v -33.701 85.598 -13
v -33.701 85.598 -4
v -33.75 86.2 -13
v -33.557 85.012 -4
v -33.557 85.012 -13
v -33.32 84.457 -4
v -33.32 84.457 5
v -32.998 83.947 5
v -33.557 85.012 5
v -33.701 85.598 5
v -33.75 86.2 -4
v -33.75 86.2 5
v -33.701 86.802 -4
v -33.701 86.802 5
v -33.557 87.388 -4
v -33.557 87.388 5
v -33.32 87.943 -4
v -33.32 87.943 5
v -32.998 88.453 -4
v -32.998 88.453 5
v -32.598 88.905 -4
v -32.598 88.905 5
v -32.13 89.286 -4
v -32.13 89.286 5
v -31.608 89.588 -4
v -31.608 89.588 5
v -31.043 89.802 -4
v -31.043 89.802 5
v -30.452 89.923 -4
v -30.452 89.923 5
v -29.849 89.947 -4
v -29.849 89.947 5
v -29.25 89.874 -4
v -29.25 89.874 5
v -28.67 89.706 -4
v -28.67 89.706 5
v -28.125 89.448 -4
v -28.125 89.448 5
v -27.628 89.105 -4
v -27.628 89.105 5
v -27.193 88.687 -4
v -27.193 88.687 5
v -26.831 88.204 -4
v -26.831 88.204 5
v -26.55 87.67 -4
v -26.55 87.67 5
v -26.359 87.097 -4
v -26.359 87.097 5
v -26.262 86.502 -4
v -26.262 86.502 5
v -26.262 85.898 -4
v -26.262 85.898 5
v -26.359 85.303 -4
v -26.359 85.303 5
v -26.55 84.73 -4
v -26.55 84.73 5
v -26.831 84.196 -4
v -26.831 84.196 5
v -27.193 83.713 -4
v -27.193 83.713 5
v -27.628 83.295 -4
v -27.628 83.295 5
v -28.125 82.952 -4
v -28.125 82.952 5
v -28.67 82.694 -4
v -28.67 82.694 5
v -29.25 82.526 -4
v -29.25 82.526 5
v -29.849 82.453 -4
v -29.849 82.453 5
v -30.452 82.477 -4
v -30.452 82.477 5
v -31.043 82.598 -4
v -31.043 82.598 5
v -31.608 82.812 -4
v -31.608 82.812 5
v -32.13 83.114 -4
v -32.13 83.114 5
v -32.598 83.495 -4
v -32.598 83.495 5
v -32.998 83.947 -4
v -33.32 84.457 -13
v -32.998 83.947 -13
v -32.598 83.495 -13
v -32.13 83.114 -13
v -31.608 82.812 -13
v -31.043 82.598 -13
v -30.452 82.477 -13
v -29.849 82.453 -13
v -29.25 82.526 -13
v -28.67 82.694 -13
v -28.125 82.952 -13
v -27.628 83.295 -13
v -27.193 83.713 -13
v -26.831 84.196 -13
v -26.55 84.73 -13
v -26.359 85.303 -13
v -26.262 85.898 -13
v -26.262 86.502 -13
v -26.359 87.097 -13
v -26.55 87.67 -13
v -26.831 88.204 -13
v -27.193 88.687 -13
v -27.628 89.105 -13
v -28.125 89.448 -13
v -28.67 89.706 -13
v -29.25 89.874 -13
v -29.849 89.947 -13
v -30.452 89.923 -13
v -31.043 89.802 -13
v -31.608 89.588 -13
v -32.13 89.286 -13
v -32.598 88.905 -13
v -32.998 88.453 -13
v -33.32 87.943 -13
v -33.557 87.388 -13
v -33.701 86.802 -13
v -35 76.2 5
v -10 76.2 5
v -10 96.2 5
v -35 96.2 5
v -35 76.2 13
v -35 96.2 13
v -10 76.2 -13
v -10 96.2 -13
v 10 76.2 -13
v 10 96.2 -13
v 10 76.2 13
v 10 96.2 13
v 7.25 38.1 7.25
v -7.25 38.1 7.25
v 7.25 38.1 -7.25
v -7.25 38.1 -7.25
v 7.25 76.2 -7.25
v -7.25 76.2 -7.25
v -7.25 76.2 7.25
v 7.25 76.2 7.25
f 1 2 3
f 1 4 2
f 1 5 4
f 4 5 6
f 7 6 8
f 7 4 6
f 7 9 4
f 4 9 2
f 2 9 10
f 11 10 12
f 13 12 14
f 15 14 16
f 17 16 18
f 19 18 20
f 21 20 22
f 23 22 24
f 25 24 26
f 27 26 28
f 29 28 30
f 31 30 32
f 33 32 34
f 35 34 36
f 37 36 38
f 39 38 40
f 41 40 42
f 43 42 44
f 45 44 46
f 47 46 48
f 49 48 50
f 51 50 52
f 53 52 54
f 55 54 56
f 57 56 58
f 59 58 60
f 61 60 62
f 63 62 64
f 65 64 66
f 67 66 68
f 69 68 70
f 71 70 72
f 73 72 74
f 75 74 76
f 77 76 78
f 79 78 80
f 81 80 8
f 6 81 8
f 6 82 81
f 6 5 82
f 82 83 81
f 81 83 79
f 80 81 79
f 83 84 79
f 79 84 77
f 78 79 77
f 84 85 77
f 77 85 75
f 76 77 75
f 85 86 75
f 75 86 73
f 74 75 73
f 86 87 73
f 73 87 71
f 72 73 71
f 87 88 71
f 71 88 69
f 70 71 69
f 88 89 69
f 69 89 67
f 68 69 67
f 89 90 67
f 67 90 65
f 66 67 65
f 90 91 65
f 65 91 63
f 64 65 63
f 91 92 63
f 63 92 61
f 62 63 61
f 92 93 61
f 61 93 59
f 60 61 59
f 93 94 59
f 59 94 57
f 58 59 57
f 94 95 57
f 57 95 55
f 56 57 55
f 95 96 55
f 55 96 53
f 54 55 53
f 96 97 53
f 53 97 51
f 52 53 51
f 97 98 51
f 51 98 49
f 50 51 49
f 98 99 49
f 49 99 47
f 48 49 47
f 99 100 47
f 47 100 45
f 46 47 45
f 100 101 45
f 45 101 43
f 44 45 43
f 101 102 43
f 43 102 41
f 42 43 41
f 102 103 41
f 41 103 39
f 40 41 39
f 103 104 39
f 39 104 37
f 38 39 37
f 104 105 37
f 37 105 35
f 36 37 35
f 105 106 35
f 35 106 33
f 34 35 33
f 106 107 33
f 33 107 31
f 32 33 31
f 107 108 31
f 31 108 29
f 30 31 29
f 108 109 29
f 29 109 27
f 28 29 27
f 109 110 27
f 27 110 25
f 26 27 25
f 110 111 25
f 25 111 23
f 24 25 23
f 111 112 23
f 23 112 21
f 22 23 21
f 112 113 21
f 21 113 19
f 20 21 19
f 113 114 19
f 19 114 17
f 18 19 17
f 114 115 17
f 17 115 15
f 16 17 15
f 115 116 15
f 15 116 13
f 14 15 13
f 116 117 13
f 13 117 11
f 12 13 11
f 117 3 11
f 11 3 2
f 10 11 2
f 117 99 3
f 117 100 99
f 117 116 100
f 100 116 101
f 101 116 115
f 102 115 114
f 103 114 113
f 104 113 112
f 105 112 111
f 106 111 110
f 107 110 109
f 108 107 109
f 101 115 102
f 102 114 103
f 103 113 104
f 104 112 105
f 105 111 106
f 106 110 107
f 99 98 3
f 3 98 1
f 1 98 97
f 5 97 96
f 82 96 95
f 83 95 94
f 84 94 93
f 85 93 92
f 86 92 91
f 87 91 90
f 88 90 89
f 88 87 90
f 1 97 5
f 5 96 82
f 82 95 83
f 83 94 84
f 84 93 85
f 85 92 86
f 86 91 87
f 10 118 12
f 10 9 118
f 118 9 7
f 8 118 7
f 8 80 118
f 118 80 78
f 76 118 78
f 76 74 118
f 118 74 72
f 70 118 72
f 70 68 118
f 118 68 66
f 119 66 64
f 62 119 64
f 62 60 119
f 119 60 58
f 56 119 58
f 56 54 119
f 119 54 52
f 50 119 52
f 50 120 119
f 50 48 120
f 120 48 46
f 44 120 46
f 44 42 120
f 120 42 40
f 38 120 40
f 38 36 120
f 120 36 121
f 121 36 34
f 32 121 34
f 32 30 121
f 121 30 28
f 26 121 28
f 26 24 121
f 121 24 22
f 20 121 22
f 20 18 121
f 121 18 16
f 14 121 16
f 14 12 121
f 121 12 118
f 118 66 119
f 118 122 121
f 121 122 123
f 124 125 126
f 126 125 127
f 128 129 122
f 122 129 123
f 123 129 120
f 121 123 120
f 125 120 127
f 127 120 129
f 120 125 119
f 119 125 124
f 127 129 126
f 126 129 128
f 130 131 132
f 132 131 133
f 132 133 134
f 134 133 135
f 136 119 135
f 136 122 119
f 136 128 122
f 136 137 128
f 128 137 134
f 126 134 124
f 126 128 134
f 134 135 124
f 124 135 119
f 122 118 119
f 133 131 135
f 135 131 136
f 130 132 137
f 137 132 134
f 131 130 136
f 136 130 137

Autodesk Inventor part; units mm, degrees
ref_plane "YZ Plane" through (0, 0, 0) normal (1, 0, 0) x (0, 1, 0)
ref_plane "XZ Plane" through (0, 0, 0) normal (0, 1, 0) x (-1, 0, 0)
ref_plane "XY Plane" through (0, 0, 0) normal (0, 0, 1) x (1, 0, 0)
sketch "Sketch1" plane through (0, 0, 0) normal (0, 1, 0) x (-1, 0, 0)
  line L0 (-7.25, 7.25) -> (7.25, 7.25)
  line L1 (7.25, 7.25) -> (7.25, -7.25)
  line L2 (7.25, -7.25) -> (-7.25, -7.25)
  line L3 (-7.25, -7.25) -> (-7.25, 7.25)
  line L4 (-7.25, 7.25) -> (7.25, -7.25) construction
  line L5 (7.25, 7.25) -> (-7.25, -7.25) construction
  point P0 (0, 0)
  dimension "d0" = 14.5
  dimension "d1" = 14.5
extrude "Extrusion1" add sketch "Sketch1" along normal blind 76.2
sketch "Sketch2" plane through (0, 76.2, 0) normal (0, 1, 0) x (1, 0, 0)
  line L0 (10, -10) -> (-10, -10)
  line L1 (-10, -10) -> (-10, 10)
  line L2 (-10, 10) -> (10, 10)
  line L3 (10, 10) -> (10, -10)
  line L4 (10, -10) -> (-10, 10) construction
  line L5 (-10, -10) -> (10, 10) construction
  point P0 (0, 0)
  dimension "d4" = 20
  dimension "d5" = 20
extrude "Extrusion2" add sketch "Sketch2" along normal blind 5
sketch "Sketch3" plane through (0, 81.2, 0) normal (0, 1, 0) x (1, 0, 0)
  line L0 (7.5, -7.5) -> (-7.5, -7.5)
  line L1 (-7.5, -7.5) -> (-7.5, 7.5)
  line L2 (-7.5, 7.5) -> (7.5, 7.5)
  line L3 (7.5, 7.5) -> (7.5, -7.5)
  line L4 (7.5, -7.5) -> (-7.5, 7.5) construction
  line L5 (-7.5, -7.5) -> (7.5, 7.5) construction
  line L6 (10, -10) -> (-10, -10)
  line L7 (-10, -10) -> (-10, 10)
  line L8 (-10, 10) -> (10, 10)
  line L9 (10, 10) -> (10, -10)
  line L10 (10, -10) -> (-10, 10) construction
  line L11 (-10, -10) -> (10, 10) construction
  point P0 (0, 0)
  dimension "d8" = 15
  dimension "d9" = 15
extrude "Extrusion3" add sketch "Sketch3" along normal blind 76.2
sketch "Sketch4" plane through (10, 76.2, 10) normal (1, 0, 0) x (0, 0, -1)
  line L0 (20, 0) -> (20, 81.2) projected
  line L1 (15, 81.2) -> (15, 0)
  line L2 (0, 0) -> (20, 0) projected
  line L3 (15, 81.2) -> (13, 81.2)
  line L4 (17.5, 81.2) -> (2.5, 81.2) projected
  line L5 (13, 81.2) -> (13, 0)
  line L6 (13, 0) -> (15, 0)
  line L7 (20, 81.2) -> (0, 81.2) projected
  point P0 (10, -76.2)
  dimension "d12" = 2
extrude "Extrusion4" add sketch "Sketch4" along normal blind 10 contours L2 L5 L3 L1
sketch "Sketch5" plane through (10, 76.2, -3) normal (0, 0, 1) x (1, 0, 0)
  line L0 (0, 81.2) -> (10, 81.2) projected
  line L1 (10, 81.2) -> (8, 81.2)
  line L2 (8, 81.2) -> (8, 0)
  line L3 (8, 0) -> (10, 0)
  line L4 (10, 0) -> (10, 81.2)
  point P0 (-10, -76.2)
  dimension "d15" = 2
extrude "Extrusion5" add sketch "Sketch5" along normal blind 8
sketch "Sketch6" plane through (20, 76.2, 10) normal (1, 0, 0) x (0, 0, -1)
  line L0 (5, 81.2) -> (3, 81.2)
  line L1 (3, 81.2) -> (3, 0)
  line L2 (3, 0) -> (5, 0)
  line L3 (5, 0) -> (5, 81.2)
  point P0 (10, -76.2)
  dimension "d18" = 2
extrude "Extrusion6" add sketch "Sketch6" against normal blind 4
sketch "Sketch7" plane through (0, 76.2, 0) normal (0, -1, 0) x (1, 0, 0)
  line L0 (10, -5) -> (20, -5)
  line L1 (20, -5) -> (20, 7)
  line L2 (20, 7) -> (10, 7)
  line L3 (10, 7) -> (10, -5)
  point P0 (0, 0)
extrude "Extrusion7" cut sketch "Sketch7" against normal through all
sketch "Sketch8" plane through (7.25, 0, -7.25) normal (0, 0, -1) x (-1, 0, 0)
  line L0 (0, 0) -> (0, 76.2)
  line L1 (0, 0) -> (0, 76.2) projected
  line L2 (0, 38.1) -> (14.5, 38.1)
  line L3 (14.5, 38.1) -> (14.5, 0)
  line L4 (14.5, 0) -> (0, 0)
  line L5 (0, 0) -> (0, 38.1)
  point P0 (7.25, 0)
extrude "Extrusion8" cut sketch "Sketch8" against normal through all
sketch "Sketch9" plane through (10, 76.2, -10) normal (0, 0, -1) x (-1, 0, 0)
  line L0 (0, 0) -> (0, 20)
  line L1 (0, 0) -> (0, 81.2) projected
  line L2 (0, 20) -> (20, 20)
  line L3 (20, 20) -> (20, 81.2)
  line L4 (20, 81.2) -> (0, 81.2)
  line L5 (0, 81.2) -> (0, 20)
  point P0 (10, -76.2)
  dimension "d25" = 20
extrude "Extrusion9" cut sketch "Sketch9" against normal through all
sketch "Sketch10" plane through (-10, 96.2, -10) normal (0, 1, 0) x (1, 0, 0)
  line L0 (17.5, -2.5) -> (2.5, -2.5)
  line L1 (2.5, -2.5) -> (2.5, -17.5)
  line L2 (2.5, -17.5) -> (17.5, -17.5)
  line L3 (17.5, -17.5) -> (17.5, -2.5)
  point P0 (10, -10)
extrude "Extrusion10" add sketch "Sketch10" against normal blind 15
sketch "Sketch11" plane through (10, 76.2, 10) normal (1, 0, 0) x (0, 0, -1)
  point P0 (10, -76.2)
sketch "Sketch12" plane through (-10, 76.2, -10) normal (-1, 0, 0) x (0, 0, 1)
  line L0 (0, 0) -> (0, 20) projected
  line L1 (20, 0) -> (20, 20) projected
  line L2 (20, 10) -> (15, 10)
  line L3 (0, 10) -> (5, 10)
  line L4 (20, 20) -> (23, 20)
  line L5 (23, 20) -> (23, 0)
  line L6 (23, 0) -> (20, 0)
  line L7 (20, 0) -> (20, 20)
  line L8 (0, 20) -> (-3, 20)
  line L9 (-3, 20) -> (-3, 0)
  line L10 (-3, 0) -> (0, 0)
  line L11 (0, 0) -> (0, 20)
  point P0 (10, -76.2)
  dimension "d30" = 5
  dimension "d31" = 5
  dimension "d32" = 3
  dimension "d33" = 3
extrude "Extrusion11" add sketch "Sketch12" against normal blind 20
sketch "Sketch13" plane through (-10, 76.2, -13) normal (-1, 0, 0) x (0, 0, 1)
  line L0 (20.25, 0) -> (5.75, 0) projected
  line L1 (0, 20) -> (8, 20)
  line L2 (8, 20) -> (8, 0)
  line L3 (8, 0) -> (0, 0)
  line L4 (0, 0) -> (0, 20)
  line L5 (26, 20) -> (18, 20)
  line L6 (18, 20) -> (18, 0)
  line L7 (18, 0) -> (26, 0)
  line L8 (26, 0) -> (26, 20)
  point P0 (13, -76.2)
  dimension "d36" = 8
  dimension "d37" = 8
extrude "Extrusion12" add sketch "Sketch13" along normal blind 25 contours L0 L6 L5 L8 L7
sketch "Sketch14" plane through (-10, 76.2, 5) normal (0, 0, -1) x (-1, 0, 0)
  line L0 (0, 20) -> (0, 0) projected
  line L1 (0, 10) -> (20, 10)
  circle A0 centre (20, 10) radius 3.75
  point P0 (-10, -76.2)
  dimension "d40" = 20
  dimension "d41" = 7.5
sketch "Sketch15" plane through (-10, 76.2, -13) normal (-1, 0, 0) x (0, 0, 1)
  point P0 (13, -76.2)
extrude "Extrusion13" add sketch "Sketch14" along normal blind 18
sketch "Sketch16" plane through (-10, 76.2, -13) normal (0, 0, -1) x (-1, 0, 0)
  point P0 (-10, -76.2)
properties part number "BearingEndCap"
